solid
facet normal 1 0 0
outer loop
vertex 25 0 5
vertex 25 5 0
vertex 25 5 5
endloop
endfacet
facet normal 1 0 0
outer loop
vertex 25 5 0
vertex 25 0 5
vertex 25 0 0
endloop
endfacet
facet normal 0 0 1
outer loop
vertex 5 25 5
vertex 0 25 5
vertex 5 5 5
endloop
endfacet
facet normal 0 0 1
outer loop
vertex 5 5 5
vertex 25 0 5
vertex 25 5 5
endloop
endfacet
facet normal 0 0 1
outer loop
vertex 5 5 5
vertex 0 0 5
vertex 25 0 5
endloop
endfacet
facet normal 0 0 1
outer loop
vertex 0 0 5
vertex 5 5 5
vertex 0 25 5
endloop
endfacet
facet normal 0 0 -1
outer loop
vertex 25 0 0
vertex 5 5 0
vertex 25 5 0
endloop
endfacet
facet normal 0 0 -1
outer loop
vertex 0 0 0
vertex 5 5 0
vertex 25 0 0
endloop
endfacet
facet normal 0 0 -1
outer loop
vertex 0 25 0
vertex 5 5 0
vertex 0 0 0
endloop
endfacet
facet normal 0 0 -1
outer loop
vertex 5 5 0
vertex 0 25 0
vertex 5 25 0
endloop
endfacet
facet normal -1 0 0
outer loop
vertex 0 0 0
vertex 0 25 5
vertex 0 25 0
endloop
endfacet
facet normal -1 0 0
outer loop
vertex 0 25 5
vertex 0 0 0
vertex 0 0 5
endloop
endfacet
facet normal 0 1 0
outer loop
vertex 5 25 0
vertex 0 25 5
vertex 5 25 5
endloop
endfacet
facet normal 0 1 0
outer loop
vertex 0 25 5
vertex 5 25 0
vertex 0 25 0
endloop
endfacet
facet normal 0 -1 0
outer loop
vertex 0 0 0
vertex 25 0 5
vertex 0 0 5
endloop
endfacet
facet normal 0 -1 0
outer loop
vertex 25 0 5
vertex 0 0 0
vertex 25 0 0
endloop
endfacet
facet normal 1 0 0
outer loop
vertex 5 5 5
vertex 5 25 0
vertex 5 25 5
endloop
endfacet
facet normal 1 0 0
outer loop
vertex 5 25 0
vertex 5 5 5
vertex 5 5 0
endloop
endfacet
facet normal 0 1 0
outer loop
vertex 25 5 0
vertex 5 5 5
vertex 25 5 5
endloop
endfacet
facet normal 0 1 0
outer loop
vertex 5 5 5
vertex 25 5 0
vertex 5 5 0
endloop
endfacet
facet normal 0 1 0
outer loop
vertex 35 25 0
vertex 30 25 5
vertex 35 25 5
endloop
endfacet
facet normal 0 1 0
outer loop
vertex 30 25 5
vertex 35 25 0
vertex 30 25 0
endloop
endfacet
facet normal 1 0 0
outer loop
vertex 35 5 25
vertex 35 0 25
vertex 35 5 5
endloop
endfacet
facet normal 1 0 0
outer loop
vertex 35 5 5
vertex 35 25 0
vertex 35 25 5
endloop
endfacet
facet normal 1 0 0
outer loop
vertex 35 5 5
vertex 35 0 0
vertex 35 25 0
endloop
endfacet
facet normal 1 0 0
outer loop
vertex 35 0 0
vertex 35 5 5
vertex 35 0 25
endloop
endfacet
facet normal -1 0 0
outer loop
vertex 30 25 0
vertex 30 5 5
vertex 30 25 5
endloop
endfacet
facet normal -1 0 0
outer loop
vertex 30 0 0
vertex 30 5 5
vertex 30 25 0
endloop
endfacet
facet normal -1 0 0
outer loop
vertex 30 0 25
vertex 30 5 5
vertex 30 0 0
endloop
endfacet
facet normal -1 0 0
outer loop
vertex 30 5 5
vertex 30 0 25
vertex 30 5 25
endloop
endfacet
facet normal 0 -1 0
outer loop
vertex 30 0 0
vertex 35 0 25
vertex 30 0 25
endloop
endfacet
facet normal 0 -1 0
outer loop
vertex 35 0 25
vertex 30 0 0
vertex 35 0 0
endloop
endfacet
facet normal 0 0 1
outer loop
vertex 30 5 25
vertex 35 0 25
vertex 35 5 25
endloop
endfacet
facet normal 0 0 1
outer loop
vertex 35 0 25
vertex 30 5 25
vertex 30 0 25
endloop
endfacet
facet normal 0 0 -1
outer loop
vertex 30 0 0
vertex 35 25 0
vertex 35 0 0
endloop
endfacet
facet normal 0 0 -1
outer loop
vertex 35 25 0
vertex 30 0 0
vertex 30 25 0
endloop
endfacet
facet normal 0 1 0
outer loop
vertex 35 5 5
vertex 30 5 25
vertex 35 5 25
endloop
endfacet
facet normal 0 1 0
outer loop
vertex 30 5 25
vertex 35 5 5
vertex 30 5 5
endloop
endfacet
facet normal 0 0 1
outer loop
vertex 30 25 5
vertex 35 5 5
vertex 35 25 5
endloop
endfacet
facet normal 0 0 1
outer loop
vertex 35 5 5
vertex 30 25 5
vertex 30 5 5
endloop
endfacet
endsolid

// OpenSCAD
module model(){
difference(){
    cube([25,25,5]);
    translate([5,5,0])cube([25,25,5]);

}
}
model();

translate([30,0,0])rotate([90,0,90])model();

$fn=64;
